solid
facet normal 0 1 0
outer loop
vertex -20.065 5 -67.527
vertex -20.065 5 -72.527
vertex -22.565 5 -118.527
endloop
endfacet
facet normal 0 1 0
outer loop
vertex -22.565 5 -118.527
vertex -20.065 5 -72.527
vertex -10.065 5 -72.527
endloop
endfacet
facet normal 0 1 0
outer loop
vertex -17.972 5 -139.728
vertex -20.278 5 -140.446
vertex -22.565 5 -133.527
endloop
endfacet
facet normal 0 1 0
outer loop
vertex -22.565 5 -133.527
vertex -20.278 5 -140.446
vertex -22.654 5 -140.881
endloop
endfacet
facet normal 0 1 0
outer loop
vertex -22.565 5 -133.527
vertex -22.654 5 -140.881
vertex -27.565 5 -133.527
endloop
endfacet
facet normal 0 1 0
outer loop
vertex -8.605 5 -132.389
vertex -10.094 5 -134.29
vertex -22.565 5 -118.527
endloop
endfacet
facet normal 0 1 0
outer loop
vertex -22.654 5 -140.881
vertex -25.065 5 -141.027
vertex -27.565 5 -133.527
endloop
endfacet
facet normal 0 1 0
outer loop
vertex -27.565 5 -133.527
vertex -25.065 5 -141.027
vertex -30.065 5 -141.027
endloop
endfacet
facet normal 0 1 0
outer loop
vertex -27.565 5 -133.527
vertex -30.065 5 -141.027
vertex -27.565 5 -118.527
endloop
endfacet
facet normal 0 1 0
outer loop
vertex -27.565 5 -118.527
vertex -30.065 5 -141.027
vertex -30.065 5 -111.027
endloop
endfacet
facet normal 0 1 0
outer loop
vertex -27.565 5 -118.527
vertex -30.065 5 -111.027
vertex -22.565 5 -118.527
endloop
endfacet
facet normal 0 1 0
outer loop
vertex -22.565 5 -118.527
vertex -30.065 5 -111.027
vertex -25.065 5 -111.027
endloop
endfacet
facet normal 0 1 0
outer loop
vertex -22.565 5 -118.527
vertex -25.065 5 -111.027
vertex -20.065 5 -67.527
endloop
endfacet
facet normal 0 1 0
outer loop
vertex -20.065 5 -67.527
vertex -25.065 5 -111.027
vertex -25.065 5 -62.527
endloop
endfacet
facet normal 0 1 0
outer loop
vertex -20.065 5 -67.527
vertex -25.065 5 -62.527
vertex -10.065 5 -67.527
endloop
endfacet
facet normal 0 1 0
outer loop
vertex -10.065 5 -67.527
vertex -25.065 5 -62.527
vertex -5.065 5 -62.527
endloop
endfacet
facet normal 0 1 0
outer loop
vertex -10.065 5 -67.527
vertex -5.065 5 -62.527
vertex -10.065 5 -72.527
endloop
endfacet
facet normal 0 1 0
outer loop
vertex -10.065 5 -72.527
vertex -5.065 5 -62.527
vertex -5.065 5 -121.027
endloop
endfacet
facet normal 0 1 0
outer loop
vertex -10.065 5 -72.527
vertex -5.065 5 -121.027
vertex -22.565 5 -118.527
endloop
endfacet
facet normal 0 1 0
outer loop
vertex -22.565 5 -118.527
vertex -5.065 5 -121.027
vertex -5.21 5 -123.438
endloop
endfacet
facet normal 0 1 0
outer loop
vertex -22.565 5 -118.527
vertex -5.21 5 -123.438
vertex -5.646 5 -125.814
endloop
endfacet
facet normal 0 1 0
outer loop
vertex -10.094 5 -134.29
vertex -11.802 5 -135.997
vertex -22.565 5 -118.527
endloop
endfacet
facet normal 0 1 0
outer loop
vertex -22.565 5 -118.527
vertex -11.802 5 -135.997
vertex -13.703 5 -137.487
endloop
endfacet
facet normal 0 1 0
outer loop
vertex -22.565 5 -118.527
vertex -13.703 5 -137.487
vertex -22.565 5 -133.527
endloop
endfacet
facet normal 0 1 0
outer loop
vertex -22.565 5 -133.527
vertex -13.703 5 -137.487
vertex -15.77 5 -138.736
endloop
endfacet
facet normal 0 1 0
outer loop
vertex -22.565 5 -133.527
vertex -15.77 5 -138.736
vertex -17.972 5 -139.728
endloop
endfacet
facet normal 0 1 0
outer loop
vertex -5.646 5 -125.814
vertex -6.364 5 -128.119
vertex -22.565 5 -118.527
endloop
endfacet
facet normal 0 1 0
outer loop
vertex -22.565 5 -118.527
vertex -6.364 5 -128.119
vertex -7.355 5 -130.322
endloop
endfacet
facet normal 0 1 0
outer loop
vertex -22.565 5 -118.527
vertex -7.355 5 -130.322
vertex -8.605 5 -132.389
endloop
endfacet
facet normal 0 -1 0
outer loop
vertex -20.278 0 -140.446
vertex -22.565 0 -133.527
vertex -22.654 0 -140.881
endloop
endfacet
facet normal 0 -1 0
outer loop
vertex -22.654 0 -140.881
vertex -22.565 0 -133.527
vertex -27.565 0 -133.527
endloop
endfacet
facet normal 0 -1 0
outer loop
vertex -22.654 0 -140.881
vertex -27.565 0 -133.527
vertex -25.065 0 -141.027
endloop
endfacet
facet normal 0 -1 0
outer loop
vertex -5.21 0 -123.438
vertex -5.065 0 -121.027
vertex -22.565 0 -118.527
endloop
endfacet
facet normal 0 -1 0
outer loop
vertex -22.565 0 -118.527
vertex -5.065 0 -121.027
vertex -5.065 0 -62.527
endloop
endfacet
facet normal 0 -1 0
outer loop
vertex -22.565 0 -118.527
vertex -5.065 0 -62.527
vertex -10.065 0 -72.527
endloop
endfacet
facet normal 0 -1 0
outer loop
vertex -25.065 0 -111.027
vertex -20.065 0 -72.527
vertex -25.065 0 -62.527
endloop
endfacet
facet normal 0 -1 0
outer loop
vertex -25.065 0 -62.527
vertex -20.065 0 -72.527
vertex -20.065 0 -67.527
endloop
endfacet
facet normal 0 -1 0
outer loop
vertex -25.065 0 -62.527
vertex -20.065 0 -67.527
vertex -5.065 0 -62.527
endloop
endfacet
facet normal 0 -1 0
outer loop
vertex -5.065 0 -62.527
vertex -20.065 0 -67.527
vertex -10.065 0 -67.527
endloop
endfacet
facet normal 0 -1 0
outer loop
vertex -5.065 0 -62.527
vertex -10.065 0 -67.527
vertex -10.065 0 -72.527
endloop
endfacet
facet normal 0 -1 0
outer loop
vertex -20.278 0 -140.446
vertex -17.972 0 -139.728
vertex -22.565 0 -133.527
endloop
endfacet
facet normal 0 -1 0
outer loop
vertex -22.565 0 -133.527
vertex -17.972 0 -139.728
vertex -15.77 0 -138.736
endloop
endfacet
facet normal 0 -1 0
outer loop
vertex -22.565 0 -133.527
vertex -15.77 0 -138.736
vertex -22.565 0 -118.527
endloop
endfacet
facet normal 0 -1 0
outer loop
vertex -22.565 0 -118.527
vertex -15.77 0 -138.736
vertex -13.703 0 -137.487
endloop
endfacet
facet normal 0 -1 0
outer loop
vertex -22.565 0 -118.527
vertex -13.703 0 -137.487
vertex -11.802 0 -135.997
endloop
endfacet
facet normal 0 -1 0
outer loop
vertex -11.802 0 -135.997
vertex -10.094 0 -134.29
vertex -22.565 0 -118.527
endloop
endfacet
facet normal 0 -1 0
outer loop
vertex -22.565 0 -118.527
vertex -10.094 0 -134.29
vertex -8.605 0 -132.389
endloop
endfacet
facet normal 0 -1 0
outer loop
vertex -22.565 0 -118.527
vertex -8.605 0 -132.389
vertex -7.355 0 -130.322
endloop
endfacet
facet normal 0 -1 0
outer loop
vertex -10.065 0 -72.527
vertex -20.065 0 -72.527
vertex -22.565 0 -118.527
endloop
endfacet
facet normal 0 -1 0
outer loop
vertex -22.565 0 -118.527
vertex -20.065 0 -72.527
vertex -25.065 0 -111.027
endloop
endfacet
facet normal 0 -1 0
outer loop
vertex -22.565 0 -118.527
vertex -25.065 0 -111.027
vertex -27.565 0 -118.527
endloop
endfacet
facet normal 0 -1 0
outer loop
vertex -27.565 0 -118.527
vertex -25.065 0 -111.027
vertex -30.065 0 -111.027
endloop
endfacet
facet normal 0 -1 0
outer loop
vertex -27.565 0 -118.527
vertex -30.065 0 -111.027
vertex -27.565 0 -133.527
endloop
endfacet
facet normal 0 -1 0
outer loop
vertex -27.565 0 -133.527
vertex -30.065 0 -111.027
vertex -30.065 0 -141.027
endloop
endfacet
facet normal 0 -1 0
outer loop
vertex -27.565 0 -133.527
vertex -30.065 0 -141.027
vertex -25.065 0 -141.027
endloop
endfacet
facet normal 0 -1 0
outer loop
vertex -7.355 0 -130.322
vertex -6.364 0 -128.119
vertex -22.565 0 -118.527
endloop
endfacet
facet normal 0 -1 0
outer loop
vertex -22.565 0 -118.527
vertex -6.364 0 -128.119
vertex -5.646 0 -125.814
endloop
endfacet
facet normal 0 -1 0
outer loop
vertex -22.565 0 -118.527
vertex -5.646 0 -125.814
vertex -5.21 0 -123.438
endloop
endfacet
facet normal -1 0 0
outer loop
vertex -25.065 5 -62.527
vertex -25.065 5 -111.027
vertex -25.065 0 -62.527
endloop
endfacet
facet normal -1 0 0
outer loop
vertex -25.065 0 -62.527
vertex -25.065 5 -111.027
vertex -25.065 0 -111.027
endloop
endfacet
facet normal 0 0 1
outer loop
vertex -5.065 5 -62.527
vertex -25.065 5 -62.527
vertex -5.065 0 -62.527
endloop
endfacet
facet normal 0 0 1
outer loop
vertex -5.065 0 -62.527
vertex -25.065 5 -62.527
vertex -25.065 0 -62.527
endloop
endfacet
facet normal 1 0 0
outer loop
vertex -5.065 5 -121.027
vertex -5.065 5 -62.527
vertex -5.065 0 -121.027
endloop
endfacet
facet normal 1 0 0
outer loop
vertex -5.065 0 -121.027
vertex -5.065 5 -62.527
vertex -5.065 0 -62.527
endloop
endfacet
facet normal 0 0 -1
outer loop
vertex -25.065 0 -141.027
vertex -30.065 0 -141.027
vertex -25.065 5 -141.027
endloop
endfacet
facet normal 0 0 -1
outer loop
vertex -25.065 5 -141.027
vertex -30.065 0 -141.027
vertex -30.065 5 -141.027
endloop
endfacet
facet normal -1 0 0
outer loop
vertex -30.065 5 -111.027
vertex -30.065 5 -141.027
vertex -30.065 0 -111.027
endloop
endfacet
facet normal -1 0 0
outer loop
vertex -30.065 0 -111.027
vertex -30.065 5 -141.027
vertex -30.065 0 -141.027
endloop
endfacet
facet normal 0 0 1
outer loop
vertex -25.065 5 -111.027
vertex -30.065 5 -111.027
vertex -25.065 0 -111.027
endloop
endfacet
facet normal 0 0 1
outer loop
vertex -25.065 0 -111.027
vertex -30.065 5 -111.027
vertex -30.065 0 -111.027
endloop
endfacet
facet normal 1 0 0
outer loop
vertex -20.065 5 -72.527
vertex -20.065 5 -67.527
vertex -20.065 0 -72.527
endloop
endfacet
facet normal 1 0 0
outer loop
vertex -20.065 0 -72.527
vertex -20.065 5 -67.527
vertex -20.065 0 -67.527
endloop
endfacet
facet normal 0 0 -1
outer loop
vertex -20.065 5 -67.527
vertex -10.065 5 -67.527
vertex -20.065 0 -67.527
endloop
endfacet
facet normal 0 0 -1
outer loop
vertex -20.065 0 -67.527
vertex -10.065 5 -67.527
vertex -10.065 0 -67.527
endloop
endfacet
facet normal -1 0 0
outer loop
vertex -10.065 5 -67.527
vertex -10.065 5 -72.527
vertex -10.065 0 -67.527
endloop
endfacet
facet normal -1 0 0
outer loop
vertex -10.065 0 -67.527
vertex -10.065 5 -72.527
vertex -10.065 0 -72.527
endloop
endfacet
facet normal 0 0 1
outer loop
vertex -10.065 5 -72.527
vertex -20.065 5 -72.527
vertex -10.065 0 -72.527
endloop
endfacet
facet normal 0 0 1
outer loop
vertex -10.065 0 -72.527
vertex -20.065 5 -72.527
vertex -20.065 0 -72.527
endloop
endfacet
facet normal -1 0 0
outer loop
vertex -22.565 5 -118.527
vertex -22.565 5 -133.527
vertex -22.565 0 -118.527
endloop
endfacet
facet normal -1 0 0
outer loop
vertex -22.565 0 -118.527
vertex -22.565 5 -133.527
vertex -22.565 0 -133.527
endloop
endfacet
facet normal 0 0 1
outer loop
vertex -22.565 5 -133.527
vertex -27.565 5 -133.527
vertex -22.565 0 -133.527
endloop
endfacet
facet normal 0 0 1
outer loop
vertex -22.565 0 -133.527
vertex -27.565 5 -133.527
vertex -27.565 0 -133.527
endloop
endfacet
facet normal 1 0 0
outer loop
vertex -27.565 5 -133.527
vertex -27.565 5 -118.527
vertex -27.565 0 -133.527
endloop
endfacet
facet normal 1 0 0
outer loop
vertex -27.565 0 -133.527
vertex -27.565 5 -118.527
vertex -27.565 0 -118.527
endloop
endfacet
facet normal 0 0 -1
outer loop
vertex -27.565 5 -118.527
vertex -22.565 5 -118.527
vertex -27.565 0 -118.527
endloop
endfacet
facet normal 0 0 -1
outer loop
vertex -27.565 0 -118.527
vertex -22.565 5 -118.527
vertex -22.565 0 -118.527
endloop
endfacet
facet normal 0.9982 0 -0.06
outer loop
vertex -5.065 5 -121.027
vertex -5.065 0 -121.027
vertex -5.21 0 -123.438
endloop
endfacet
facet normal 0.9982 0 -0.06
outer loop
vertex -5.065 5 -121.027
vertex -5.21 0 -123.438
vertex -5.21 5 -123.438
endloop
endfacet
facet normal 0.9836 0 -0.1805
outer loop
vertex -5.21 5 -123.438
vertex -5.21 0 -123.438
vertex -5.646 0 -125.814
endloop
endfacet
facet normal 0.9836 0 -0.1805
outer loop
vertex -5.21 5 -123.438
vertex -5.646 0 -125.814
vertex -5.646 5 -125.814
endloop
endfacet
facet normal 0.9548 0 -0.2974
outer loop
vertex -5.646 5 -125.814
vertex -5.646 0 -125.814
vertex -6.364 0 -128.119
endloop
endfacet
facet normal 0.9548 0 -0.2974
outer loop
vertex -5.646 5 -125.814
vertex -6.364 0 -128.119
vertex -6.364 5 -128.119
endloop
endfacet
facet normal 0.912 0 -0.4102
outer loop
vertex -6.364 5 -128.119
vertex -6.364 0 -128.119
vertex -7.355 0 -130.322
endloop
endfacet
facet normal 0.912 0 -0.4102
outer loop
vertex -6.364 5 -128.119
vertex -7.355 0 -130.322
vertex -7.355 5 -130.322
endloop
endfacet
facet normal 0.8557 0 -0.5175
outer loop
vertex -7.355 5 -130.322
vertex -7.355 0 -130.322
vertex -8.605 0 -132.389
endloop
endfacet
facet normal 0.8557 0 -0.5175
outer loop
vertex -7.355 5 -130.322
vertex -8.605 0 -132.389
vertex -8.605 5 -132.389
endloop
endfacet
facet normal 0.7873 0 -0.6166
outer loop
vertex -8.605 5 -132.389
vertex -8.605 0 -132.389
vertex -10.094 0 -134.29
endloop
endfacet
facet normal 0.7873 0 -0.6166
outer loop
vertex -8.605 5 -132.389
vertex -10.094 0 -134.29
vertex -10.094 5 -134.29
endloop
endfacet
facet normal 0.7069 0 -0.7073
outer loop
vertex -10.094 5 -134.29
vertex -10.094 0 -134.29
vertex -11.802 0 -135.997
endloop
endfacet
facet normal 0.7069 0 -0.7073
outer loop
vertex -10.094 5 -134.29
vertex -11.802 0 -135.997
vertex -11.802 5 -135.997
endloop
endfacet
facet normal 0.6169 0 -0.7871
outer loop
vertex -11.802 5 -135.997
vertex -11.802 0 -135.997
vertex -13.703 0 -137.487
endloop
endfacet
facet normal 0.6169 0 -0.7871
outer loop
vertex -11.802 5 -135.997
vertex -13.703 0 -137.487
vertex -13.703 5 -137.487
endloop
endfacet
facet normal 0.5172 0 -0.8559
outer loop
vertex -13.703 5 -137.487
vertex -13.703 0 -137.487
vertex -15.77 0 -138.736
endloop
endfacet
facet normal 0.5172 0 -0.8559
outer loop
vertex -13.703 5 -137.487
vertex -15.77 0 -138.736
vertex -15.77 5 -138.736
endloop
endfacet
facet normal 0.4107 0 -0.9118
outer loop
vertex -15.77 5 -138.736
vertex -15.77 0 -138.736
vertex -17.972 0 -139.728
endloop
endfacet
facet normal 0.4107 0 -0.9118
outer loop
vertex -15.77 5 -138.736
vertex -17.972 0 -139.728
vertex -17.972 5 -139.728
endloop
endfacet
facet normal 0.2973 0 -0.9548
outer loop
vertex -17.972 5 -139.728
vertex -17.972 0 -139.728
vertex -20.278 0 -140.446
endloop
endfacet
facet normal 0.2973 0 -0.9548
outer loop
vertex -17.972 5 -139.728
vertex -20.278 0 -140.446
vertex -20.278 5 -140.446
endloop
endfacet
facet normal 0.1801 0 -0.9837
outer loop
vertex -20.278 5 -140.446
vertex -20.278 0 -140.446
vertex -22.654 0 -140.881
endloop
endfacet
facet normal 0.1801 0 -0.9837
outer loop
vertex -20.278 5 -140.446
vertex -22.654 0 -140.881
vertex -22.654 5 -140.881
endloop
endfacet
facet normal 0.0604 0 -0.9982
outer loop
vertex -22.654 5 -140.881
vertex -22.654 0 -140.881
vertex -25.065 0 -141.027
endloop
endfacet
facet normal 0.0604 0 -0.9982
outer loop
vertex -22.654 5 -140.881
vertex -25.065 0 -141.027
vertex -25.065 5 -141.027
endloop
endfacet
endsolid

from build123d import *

# Parameters (mm, degrees)
SKETCH1_W           = 10
SKETCH1_H           = 5
SKETCH1_W_2         = 5
SKETCH1_H_2         = 15
BOSS_EXTRUDE1_DEPTH = 5
FILLET2_R           = 20


with BuildPart() as part:
    # Sketch1 → Boss-Extrude1 (new body)
    with BuildSketch(Plane(origin=(0, 0, 0), x_dir=(1, 0, 0), z_dir=(0, 1, 0))):
        Polygon((-30.064538889, 111.027213551), (-25.064538889, 111.027213551), (-25.064538889, 62.527213551), (-5.064538889, 62.527213551), (-5.064538889, 141.027213551), (-30.064538889, 141.027213551), align=None)
        with Locations((-15.064538889, 70.027213551)):
            Rectangle(SKETCH1_W, SKETCH1_H, mode=Mode.SUBTRACT)
        with Locations((-25.064538889, 126.027213551)):
            Rectangle(SKETCH1_W_2, SKETCH1_H_2, mode=Mode.SUBTRACT)
    extrude(amount=BOSS_EXTRUDE1_DEPTH)

    # Fillet2
    fillet2_edges = [part.edges().sort_by_distance(p)[0] for p in [
        (-5.064538889, 2.5, -141.027213551),
    ]]
    fillet(fillet2_edges, radius=FILLET2_R)


solid = part.part
